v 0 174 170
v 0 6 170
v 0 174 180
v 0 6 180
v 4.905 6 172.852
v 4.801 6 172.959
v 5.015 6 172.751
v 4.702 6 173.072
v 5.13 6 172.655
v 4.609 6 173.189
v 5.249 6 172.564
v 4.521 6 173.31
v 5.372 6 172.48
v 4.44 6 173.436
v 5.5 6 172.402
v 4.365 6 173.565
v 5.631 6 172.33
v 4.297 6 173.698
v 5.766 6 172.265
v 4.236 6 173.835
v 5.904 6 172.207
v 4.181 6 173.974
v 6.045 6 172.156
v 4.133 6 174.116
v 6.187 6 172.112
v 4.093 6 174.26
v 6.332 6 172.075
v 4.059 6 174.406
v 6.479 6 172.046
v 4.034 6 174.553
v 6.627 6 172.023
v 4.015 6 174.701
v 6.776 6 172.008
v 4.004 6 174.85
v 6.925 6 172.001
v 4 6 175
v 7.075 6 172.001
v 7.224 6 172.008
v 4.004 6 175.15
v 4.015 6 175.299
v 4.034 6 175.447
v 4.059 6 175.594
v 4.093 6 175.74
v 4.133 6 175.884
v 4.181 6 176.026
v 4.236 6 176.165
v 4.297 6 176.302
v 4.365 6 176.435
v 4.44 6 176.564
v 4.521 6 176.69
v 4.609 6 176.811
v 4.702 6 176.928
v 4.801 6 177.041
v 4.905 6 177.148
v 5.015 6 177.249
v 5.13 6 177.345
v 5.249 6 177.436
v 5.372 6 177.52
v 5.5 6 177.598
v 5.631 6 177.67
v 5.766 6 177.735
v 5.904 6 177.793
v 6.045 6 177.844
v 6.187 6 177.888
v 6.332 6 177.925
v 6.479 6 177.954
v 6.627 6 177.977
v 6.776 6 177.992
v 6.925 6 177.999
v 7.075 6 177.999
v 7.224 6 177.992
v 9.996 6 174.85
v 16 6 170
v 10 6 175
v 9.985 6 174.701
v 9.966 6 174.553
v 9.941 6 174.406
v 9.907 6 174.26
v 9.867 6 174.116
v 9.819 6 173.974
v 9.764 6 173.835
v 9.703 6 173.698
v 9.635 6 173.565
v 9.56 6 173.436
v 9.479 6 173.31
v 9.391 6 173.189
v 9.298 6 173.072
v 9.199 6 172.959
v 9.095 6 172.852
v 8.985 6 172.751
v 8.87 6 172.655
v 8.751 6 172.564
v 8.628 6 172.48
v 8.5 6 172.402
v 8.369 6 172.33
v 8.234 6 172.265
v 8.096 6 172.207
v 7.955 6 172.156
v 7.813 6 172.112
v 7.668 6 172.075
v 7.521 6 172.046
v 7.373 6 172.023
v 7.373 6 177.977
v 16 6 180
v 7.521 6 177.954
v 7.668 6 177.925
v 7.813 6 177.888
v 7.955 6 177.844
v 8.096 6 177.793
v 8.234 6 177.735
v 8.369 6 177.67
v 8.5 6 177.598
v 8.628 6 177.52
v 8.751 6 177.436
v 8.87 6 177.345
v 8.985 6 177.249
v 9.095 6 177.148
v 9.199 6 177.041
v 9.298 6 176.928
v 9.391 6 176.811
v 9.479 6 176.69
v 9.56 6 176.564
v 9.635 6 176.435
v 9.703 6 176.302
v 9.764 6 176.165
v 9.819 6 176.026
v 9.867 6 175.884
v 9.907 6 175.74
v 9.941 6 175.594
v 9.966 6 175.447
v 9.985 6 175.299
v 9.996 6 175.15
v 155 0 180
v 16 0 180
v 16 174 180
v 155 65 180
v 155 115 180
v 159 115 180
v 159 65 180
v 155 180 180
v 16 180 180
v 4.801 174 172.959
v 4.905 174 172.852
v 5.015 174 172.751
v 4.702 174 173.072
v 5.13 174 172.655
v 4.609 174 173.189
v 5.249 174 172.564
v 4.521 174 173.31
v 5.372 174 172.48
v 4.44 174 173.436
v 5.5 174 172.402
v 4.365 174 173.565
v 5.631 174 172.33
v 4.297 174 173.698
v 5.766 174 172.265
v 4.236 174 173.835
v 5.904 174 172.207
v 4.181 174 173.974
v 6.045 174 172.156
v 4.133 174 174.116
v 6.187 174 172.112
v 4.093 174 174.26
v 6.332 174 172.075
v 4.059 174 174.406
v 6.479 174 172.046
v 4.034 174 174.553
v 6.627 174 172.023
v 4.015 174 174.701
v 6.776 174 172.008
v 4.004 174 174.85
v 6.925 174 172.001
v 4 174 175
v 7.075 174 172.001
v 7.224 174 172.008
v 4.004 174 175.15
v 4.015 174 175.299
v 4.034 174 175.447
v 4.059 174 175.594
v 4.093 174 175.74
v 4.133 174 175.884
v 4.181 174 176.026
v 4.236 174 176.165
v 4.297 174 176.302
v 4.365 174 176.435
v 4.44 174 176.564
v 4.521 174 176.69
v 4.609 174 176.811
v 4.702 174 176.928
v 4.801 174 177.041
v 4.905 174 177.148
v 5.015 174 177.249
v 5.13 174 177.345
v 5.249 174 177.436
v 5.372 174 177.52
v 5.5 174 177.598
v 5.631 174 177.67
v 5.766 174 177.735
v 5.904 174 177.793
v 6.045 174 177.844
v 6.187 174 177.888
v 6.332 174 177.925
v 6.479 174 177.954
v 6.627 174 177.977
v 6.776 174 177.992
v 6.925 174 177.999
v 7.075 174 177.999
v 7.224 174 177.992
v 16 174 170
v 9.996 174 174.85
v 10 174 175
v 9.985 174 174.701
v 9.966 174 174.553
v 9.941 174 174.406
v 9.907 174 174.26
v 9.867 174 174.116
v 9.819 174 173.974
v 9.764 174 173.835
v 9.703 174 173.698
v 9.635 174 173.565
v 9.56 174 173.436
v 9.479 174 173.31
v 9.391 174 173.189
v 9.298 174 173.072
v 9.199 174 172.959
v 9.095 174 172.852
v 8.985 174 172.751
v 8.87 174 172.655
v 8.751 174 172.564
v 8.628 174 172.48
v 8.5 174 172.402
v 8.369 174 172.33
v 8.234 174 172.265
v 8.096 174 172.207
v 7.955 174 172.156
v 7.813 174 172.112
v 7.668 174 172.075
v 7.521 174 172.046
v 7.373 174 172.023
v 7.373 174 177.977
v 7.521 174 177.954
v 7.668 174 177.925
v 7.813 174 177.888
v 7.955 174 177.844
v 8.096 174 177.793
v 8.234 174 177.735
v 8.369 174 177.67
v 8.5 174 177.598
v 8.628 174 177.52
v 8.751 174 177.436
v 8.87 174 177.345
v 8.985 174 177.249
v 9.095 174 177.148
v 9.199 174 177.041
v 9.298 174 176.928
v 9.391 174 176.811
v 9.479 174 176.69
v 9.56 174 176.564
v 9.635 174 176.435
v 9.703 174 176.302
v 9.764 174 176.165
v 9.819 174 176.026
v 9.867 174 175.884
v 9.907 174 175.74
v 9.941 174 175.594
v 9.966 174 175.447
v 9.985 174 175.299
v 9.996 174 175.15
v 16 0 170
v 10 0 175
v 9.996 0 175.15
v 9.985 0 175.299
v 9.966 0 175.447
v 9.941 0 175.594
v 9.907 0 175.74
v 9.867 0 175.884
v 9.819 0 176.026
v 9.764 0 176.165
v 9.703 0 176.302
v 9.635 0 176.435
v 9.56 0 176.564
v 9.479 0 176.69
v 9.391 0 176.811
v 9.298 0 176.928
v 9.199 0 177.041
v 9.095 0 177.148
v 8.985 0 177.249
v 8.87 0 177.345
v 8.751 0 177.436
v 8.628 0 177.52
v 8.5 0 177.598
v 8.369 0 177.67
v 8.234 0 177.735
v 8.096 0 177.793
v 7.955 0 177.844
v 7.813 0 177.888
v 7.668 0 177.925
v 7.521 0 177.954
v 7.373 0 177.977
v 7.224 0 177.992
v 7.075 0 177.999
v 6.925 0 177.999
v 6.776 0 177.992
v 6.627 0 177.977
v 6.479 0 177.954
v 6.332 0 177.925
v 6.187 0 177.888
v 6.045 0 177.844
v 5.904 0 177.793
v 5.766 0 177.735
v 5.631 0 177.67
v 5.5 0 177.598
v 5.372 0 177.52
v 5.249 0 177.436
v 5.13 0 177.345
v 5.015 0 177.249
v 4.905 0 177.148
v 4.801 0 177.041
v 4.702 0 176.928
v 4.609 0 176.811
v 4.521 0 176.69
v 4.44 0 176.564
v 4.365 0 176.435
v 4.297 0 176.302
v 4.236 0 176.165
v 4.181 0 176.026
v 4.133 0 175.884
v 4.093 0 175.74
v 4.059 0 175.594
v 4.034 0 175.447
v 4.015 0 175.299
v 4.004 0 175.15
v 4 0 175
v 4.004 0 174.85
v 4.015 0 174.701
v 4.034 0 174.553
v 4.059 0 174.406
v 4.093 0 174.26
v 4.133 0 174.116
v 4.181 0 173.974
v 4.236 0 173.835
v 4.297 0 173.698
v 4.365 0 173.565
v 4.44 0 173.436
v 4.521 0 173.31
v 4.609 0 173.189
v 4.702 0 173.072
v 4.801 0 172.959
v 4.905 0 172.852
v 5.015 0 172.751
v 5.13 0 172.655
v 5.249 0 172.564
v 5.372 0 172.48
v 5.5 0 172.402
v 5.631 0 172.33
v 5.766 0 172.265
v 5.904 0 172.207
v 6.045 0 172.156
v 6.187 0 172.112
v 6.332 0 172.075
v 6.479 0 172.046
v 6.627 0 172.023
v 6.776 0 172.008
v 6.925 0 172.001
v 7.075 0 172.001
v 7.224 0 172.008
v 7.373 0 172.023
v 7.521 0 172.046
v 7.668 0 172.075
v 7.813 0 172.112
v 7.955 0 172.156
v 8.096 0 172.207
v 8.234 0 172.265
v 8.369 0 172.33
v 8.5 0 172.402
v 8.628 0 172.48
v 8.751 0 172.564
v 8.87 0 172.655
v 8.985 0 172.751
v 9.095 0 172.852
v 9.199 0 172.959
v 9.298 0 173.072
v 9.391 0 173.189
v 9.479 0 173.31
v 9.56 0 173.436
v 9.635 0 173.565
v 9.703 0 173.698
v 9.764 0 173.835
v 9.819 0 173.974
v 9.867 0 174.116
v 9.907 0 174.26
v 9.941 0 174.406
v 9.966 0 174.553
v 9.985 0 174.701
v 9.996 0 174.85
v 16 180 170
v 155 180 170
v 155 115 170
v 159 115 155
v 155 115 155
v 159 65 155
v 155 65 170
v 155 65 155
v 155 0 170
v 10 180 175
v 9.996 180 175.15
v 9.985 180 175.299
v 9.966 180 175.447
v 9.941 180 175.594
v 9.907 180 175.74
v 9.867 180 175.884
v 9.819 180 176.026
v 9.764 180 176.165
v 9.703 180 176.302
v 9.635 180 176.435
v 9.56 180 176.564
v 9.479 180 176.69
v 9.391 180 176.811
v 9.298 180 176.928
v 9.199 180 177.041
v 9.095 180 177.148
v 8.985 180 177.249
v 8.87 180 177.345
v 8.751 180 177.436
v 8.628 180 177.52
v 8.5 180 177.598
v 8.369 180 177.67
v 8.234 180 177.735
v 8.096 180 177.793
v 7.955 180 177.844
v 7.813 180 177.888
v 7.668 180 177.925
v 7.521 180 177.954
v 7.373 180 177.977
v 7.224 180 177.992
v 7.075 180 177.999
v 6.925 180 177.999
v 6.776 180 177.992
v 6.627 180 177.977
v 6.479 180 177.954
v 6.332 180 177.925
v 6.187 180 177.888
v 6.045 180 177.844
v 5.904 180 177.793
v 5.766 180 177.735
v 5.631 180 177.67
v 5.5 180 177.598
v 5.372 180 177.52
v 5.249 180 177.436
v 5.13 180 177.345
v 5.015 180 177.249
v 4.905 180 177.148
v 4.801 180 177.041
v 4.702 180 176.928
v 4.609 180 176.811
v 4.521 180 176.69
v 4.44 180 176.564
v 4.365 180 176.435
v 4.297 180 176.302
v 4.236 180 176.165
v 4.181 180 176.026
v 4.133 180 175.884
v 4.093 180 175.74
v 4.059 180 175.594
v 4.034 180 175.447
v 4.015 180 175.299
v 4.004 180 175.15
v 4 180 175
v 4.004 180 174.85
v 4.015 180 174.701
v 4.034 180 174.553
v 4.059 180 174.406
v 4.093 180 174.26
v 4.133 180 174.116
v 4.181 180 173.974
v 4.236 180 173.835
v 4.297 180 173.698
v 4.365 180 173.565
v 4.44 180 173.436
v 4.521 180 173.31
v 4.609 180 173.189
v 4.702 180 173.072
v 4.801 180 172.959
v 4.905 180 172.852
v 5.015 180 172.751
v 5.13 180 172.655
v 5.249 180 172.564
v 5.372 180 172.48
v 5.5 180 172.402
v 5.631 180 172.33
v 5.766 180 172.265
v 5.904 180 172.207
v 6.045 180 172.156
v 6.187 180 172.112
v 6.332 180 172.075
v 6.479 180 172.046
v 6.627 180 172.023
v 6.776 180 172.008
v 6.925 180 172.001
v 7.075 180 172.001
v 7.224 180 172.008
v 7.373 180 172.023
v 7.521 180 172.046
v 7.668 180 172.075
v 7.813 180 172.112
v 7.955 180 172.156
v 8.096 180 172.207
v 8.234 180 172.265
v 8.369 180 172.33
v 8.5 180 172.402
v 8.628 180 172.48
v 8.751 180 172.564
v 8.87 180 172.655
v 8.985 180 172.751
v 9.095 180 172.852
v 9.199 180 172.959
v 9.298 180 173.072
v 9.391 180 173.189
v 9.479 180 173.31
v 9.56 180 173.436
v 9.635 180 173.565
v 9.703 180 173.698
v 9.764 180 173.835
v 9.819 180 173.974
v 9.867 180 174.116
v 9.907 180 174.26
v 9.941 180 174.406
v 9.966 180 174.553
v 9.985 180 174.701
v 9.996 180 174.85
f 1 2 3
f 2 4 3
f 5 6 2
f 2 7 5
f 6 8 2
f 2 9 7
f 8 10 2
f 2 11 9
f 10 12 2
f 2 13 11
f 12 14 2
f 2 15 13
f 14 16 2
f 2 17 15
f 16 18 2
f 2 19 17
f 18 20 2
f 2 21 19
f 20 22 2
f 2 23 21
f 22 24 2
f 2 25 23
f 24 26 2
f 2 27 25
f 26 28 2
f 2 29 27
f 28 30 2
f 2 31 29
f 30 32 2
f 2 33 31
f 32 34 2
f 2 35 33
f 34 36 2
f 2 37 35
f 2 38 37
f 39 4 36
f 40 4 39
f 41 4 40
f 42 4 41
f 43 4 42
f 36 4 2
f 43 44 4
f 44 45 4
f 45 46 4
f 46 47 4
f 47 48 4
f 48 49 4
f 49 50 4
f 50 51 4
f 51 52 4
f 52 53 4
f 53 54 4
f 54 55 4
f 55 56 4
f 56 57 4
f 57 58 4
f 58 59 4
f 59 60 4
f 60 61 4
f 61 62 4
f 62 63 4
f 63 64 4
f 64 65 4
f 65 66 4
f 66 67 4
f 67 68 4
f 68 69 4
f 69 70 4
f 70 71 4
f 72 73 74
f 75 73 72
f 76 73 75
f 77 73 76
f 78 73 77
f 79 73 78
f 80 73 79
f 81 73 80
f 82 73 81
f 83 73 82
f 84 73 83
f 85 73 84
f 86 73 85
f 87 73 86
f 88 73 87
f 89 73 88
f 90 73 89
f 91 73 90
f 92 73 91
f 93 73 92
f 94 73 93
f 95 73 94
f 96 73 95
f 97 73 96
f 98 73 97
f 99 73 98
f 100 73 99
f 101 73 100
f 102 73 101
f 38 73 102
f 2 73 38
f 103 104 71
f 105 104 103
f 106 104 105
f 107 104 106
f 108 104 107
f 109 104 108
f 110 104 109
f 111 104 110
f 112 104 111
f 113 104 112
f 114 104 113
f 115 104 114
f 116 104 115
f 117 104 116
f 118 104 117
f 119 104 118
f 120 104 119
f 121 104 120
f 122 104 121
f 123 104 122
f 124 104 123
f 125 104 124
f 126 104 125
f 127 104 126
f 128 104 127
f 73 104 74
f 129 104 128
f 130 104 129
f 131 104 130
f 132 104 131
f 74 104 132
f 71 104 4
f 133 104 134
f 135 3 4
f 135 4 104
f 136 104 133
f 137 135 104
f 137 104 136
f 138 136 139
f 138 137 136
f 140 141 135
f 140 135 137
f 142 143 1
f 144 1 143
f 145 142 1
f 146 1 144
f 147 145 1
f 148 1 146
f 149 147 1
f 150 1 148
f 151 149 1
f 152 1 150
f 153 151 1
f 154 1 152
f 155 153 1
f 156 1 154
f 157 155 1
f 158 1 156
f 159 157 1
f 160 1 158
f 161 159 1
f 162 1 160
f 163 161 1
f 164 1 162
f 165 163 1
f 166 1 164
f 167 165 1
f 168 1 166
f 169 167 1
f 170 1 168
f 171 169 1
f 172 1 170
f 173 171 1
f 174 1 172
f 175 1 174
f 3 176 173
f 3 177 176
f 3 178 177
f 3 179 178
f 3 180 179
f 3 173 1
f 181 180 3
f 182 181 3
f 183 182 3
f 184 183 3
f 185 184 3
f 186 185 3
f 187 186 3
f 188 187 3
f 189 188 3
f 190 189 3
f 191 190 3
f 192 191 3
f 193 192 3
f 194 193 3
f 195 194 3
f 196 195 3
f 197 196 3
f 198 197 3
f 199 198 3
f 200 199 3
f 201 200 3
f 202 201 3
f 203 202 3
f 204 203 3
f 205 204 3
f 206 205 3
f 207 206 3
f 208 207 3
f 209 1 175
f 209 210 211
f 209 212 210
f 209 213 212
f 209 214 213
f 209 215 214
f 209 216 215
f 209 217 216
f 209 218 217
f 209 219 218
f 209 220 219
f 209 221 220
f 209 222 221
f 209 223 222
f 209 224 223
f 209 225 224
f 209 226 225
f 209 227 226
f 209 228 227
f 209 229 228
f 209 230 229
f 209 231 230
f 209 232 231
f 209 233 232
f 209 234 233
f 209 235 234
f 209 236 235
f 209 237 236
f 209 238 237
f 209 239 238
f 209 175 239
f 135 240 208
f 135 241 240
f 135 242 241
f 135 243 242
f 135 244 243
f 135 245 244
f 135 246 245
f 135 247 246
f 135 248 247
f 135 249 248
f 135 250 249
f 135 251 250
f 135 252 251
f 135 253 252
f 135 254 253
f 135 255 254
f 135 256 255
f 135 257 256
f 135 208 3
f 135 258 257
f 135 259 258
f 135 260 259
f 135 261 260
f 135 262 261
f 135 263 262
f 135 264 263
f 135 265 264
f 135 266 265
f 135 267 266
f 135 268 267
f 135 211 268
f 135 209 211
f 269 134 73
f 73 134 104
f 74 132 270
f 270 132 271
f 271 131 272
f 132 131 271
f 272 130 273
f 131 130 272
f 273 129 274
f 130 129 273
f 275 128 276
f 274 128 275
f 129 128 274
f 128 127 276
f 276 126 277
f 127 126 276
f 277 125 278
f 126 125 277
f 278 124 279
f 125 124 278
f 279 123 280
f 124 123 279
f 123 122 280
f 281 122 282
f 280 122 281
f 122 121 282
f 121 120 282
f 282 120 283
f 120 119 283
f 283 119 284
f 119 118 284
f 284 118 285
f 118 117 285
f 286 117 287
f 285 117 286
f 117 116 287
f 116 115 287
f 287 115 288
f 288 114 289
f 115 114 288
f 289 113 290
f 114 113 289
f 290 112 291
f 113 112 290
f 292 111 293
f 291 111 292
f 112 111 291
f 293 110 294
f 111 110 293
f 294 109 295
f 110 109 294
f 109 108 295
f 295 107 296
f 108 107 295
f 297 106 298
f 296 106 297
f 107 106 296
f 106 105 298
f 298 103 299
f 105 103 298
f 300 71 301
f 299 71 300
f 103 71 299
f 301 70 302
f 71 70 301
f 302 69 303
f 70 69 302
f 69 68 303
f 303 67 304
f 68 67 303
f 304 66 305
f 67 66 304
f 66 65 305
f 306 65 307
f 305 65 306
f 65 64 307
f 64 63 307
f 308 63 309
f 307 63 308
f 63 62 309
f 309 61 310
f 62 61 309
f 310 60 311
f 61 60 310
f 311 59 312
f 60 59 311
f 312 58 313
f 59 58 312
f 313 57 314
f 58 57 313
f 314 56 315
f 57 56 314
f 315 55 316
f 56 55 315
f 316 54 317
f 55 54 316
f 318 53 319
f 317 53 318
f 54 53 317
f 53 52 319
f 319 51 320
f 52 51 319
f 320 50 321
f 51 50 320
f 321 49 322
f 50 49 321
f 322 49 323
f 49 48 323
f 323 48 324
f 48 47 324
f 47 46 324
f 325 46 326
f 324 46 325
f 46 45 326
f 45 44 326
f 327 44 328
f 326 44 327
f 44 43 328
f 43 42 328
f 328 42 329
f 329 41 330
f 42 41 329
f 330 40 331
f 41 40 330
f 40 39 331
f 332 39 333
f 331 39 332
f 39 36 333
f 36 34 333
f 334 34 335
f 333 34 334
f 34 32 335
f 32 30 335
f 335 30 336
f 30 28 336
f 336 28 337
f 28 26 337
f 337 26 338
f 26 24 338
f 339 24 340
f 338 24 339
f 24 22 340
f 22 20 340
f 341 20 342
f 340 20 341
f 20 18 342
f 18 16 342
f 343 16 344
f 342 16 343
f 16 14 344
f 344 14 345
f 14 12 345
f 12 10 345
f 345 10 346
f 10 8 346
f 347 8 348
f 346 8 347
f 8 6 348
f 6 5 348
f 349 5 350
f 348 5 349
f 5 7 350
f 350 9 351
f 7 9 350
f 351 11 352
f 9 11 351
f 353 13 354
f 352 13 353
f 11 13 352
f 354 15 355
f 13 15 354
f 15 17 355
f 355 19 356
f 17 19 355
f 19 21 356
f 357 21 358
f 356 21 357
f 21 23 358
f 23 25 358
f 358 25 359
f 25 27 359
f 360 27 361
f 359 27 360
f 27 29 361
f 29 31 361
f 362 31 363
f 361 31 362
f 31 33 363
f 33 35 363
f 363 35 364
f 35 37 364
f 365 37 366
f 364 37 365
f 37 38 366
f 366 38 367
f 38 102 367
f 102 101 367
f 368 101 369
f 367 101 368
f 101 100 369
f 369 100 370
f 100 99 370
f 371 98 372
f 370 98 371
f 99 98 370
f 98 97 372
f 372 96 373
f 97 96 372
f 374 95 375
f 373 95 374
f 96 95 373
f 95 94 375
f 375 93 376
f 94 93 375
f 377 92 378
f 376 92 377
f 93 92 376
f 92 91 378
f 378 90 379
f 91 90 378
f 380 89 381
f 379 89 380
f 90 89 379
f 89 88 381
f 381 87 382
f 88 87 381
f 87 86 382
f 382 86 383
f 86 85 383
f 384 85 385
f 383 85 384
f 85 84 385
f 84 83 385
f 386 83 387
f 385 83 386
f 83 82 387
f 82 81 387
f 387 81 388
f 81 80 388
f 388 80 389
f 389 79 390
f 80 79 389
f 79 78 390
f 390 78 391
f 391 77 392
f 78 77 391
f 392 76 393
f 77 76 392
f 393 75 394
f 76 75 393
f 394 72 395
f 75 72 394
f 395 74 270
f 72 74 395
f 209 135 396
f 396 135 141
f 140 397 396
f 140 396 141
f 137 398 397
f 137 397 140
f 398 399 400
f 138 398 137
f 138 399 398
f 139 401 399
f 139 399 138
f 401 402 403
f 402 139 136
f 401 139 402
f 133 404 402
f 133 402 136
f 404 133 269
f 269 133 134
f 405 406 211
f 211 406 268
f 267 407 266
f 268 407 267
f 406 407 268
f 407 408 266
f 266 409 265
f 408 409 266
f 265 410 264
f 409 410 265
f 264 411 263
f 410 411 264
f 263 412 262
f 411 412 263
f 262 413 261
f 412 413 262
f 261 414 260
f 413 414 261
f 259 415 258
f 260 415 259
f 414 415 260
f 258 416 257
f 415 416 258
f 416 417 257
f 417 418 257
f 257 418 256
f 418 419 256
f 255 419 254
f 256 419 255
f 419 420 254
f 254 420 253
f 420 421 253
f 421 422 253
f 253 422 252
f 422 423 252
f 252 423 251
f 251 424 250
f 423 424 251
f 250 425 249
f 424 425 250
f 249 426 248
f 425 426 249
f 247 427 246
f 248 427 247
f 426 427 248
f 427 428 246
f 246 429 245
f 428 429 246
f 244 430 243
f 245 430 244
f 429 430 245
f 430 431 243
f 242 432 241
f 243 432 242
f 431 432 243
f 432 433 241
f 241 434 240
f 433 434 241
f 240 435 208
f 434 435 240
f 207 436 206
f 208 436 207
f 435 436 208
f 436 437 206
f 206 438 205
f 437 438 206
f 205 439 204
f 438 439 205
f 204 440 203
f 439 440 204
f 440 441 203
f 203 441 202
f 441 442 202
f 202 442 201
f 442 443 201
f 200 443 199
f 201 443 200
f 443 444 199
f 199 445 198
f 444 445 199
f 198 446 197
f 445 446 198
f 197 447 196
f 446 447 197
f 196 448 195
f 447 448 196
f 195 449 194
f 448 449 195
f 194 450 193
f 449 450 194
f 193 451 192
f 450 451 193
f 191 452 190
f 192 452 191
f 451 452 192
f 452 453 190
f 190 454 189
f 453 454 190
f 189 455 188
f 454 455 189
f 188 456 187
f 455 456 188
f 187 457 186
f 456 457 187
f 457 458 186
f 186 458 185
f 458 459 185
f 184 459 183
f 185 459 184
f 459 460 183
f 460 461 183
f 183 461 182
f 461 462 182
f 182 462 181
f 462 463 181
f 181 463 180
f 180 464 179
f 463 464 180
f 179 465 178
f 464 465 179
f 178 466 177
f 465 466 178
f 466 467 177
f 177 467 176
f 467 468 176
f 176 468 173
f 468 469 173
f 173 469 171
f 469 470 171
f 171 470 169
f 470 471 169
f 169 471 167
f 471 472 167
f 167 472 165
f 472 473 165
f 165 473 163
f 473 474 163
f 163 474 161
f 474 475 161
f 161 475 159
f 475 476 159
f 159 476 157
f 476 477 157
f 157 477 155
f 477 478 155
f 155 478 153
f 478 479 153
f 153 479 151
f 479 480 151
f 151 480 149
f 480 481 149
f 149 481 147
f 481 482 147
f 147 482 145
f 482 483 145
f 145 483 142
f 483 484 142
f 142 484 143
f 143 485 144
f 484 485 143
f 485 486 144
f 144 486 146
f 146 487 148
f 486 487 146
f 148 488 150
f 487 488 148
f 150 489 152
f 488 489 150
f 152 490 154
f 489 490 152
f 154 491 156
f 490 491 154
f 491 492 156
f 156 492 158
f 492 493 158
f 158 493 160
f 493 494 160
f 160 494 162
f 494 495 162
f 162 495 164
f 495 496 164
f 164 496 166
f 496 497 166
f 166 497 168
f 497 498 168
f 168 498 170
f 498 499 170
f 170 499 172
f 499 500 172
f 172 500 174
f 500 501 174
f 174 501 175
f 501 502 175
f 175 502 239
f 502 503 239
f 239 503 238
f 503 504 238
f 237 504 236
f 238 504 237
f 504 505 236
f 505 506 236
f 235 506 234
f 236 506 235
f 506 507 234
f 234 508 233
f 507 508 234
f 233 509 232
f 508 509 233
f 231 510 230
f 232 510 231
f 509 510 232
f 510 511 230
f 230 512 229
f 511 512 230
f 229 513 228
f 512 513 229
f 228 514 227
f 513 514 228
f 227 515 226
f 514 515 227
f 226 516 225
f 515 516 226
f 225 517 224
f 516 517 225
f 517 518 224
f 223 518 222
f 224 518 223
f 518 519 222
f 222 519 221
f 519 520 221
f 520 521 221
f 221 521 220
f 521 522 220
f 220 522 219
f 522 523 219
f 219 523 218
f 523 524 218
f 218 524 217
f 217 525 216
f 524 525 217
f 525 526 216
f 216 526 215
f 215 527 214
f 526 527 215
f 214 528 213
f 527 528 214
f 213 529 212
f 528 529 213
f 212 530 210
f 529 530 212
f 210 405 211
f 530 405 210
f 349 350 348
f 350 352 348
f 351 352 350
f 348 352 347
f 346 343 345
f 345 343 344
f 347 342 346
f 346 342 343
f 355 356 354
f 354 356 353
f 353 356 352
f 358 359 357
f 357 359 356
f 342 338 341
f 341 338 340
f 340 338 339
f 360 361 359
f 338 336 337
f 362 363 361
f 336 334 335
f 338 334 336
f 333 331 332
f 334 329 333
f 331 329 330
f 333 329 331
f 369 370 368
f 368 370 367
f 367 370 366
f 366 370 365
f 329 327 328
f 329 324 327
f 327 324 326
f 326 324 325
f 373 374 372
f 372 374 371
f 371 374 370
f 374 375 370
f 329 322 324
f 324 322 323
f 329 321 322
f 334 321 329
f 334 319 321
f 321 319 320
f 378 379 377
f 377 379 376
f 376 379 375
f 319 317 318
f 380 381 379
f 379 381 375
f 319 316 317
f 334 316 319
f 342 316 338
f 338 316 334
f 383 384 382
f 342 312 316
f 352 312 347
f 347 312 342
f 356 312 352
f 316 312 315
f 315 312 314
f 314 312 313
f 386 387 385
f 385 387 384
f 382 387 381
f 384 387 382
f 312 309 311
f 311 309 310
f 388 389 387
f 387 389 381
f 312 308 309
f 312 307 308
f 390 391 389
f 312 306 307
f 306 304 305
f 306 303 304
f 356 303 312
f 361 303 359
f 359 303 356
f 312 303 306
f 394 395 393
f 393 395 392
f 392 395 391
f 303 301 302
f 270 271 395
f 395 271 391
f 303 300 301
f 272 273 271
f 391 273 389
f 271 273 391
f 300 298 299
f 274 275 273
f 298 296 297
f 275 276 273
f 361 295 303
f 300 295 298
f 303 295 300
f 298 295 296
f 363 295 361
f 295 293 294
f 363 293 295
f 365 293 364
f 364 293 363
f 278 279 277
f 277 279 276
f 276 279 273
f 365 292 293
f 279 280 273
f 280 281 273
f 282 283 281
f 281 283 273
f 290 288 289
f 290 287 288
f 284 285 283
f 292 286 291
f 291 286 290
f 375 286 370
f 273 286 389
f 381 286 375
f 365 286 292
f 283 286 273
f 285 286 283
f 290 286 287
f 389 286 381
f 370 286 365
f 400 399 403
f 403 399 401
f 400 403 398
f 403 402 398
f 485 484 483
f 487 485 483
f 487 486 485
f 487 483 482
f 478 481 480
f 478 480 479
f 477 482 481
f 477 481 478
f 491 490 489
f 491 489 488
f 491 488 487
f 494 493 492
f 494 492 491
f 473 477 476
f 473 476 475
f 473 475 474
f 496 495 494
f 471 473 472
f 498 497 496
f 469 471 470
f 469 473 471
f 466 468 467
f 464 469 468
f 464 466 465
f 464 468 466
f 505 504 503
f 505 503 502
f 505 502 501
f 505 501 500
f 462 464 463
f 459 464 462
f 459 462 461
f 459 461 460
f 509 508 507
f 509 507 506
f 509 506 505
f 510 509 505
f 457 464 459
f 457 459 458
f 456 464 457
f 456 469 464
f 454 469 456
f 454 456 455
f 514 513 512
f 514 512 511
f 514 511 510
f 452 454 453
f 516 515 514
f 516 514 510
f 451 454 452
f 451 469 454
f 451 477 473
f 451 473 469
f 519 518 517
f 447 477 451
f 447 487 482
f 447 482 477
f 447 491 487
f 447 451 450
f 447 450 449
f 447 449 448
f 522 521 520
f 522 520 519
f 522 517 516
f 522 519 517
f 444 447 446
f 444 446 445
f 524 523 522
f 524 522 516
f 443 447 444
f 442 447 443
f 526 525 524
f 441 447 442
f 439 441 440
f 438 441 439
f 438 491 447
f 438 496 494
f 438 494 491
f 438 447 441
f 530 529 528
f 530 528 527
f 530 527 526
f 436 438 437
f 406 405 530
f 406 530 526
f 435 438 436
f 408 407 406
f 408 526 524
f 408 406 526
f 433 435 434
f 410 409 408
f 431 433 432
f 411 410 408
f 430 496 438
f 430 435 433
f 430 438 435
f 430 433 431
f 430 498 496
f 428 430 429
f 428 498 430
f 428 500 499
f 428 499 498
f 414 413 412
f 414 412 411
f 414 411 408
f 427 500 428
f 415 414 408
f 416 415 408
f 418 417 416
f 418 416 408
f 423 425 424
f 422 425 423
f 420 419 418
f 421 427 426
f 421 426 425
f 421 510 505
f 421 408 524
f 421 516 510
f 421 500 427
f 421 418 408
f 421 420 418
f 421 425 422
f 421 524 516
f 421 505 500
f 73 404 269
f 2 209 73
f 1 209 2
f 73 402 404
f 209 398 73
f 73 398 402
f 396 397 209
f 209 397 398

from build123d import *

# Parameters (mm, degrees)
CYLINDER001_R     = 3
CYLINDER001_DEPTH = 148
BOX007_W          = 16
BOX007_H          = 6
BOX007_DEPTH      = 10
CYLINDER_R        = 3
CYLINDER_DEPTH    = 148
BOX006_W          = 16
BOX006_H          = 6
BOX006_DEPTH      = 10
BOX005_W          = 12
BOX005_H          = 10
BOX005_DEPTH      = 20
BOX003_W          = 25
BOX003_H          = 25
BOX003_DEPTH      = 15
BOX001_W          = 145
BOX001_H          = 170
BOX001_DEPTH      = 200
BOX_W             = 155
BOX_H             = 180
BOX_DEPTH         = 170
BOX004_W          = 4
BOX004_H          = 50
BOX004_DEPTH      = 25
BOX002_W          = 155
BOX002_H          = 180
BOX002_DEPTH      = 10


with BuildPart() as cylinder001:
    # Cylinder001 → Cylinder001 (new body)
    with BuildSketch(Plane(origin=(7, 139, 175), x_dir=(1, 0, 0), z_dir=(0, -1, 0))):
        Circle(CYLINDER001_R)
    extrude(amount=CYLINDER001_DEPTH)


with BuildPart() as visagra2:
    # Box007 → Box007 (new body)
    with BuildSketch(Plane.XY.offset(170)):
        with Locations((8, 3)):
            Rectangle(BOX007_W, BOX007_H)
    extrude(amount=BOX007_DEPTH)

    # Cut004: cut Cylinder001
    add(cylinder001.part, mode=Mode.SUBTRACT)


with BuildPart() as cylinder:
    # Cylinder → Cylinder (new body)
    with BuildSketch(Plane(origin=(7, 192, 175), x_dir=(1, 0, 0), z_dir=(0, -1, 0))):
        Circle(CYLINDER_R)
    extrude(amount=CYLINDER_DEPTH)


with BuildPart() as visagra1:
    # Box006 → Box006 (new body)
    with BuildSketch(Plane(origin=(0, 174, 170), x_dir=(1, 0, 0), z_dir=(0, 0, 1))):
        with Locations((8, 3)):
            Rectangle(BOX006_W, BOX006_H)
    extrude(amount=BOX006_DEPTH)

    # Cut003: cut Cylinder
    add(cylinder.part, mode=Mode.SUBTRACT)


with BuildPart() as cube003:
    # Box005 → Box005 (new body)
    with BuildSketch(Plane(origin=(146, 85, 130), x_dir=(1, 0, 0), z_dir=(0, 0, 1))):
        with Locations((6, 5)):
            Rectangle(BOX005_W, BOX005_H)
    extrude(amount=BOX005_DEPTH)


with BuildPart() as agujero:
    # Box003 → Box003 (new body)
    with BuildSketch(Plane(origin=(10, -7, 5), x_dir=(1, 0, 0), z_dir=(0, 0, 1))):
        with Locations((12.5, 12.5)):
            Rectangle(BOX003_W, BOX003_H)
    extrude(amount=BOX003_DEPTH)


with BuildPart() as cube001:
    # Box001 → Box001 (new body)
    with BuildSketch(Plane(origin=(5, 5, 5), x_dir=(1, 0, 0), z_dir=(0, 0, 1))):
        with Locations((72.5, 85)):
            Rectangle(BOX001_W, BOX001_H)
    extrude(amount=BOX001_DEPTH)


with BuildPart() as fusion002:
    # Box → Box (new body)
    with BuildSketch(Plane.XY):
        with Locations((77.5, 90)):
            Rectangle(BOX_W, BOX_H)
    extrude(amount=BOX_DEPTH)

    # Cut: cut Cube001
    add(cube001.part, mode=Mode.SUBTRACT)

    # Cut001: cut Agujero
    add(agujero.part, mode=Mode.SUBTRACT)

    # Cut002: cut Cube003
    add(cube003.part, mode=Mode.SUBTRACT)

    # Fusion001: union visagra1
    add(visagra1.part)

    # Fusion002: union visagra2
    add(visagra2.part)


with BuildPart() as cube002:
    # Box004 → Box004 (new body)
    with BuildSketch(Plane(origin=(155, 65, 155), x_dir=(1, 0, 0), z_dir=(0, 0, 1))):
        with Locations((2, 25)):
            Rectangle(BOX004_W, BOX004_H)
    extrude(amount=BOX004_DEPTH)


with BuildPart() as tapa:
    # Box002 → Box002 (new body)
    with BuildSketch(Plane.XY.offset(170)):
        with Locations((77.5, 90)):
            Rectangle(BOX002_W, BOX002_H)
    extrude(amount=BOX002_DEPTH)

    # Fusion: union Cube002
    add(cube002.part)

    # Cut005: cut Fusion002
    add(fusion002.part, mode=Mode.SUBTRACT)


solid = tapa.part
